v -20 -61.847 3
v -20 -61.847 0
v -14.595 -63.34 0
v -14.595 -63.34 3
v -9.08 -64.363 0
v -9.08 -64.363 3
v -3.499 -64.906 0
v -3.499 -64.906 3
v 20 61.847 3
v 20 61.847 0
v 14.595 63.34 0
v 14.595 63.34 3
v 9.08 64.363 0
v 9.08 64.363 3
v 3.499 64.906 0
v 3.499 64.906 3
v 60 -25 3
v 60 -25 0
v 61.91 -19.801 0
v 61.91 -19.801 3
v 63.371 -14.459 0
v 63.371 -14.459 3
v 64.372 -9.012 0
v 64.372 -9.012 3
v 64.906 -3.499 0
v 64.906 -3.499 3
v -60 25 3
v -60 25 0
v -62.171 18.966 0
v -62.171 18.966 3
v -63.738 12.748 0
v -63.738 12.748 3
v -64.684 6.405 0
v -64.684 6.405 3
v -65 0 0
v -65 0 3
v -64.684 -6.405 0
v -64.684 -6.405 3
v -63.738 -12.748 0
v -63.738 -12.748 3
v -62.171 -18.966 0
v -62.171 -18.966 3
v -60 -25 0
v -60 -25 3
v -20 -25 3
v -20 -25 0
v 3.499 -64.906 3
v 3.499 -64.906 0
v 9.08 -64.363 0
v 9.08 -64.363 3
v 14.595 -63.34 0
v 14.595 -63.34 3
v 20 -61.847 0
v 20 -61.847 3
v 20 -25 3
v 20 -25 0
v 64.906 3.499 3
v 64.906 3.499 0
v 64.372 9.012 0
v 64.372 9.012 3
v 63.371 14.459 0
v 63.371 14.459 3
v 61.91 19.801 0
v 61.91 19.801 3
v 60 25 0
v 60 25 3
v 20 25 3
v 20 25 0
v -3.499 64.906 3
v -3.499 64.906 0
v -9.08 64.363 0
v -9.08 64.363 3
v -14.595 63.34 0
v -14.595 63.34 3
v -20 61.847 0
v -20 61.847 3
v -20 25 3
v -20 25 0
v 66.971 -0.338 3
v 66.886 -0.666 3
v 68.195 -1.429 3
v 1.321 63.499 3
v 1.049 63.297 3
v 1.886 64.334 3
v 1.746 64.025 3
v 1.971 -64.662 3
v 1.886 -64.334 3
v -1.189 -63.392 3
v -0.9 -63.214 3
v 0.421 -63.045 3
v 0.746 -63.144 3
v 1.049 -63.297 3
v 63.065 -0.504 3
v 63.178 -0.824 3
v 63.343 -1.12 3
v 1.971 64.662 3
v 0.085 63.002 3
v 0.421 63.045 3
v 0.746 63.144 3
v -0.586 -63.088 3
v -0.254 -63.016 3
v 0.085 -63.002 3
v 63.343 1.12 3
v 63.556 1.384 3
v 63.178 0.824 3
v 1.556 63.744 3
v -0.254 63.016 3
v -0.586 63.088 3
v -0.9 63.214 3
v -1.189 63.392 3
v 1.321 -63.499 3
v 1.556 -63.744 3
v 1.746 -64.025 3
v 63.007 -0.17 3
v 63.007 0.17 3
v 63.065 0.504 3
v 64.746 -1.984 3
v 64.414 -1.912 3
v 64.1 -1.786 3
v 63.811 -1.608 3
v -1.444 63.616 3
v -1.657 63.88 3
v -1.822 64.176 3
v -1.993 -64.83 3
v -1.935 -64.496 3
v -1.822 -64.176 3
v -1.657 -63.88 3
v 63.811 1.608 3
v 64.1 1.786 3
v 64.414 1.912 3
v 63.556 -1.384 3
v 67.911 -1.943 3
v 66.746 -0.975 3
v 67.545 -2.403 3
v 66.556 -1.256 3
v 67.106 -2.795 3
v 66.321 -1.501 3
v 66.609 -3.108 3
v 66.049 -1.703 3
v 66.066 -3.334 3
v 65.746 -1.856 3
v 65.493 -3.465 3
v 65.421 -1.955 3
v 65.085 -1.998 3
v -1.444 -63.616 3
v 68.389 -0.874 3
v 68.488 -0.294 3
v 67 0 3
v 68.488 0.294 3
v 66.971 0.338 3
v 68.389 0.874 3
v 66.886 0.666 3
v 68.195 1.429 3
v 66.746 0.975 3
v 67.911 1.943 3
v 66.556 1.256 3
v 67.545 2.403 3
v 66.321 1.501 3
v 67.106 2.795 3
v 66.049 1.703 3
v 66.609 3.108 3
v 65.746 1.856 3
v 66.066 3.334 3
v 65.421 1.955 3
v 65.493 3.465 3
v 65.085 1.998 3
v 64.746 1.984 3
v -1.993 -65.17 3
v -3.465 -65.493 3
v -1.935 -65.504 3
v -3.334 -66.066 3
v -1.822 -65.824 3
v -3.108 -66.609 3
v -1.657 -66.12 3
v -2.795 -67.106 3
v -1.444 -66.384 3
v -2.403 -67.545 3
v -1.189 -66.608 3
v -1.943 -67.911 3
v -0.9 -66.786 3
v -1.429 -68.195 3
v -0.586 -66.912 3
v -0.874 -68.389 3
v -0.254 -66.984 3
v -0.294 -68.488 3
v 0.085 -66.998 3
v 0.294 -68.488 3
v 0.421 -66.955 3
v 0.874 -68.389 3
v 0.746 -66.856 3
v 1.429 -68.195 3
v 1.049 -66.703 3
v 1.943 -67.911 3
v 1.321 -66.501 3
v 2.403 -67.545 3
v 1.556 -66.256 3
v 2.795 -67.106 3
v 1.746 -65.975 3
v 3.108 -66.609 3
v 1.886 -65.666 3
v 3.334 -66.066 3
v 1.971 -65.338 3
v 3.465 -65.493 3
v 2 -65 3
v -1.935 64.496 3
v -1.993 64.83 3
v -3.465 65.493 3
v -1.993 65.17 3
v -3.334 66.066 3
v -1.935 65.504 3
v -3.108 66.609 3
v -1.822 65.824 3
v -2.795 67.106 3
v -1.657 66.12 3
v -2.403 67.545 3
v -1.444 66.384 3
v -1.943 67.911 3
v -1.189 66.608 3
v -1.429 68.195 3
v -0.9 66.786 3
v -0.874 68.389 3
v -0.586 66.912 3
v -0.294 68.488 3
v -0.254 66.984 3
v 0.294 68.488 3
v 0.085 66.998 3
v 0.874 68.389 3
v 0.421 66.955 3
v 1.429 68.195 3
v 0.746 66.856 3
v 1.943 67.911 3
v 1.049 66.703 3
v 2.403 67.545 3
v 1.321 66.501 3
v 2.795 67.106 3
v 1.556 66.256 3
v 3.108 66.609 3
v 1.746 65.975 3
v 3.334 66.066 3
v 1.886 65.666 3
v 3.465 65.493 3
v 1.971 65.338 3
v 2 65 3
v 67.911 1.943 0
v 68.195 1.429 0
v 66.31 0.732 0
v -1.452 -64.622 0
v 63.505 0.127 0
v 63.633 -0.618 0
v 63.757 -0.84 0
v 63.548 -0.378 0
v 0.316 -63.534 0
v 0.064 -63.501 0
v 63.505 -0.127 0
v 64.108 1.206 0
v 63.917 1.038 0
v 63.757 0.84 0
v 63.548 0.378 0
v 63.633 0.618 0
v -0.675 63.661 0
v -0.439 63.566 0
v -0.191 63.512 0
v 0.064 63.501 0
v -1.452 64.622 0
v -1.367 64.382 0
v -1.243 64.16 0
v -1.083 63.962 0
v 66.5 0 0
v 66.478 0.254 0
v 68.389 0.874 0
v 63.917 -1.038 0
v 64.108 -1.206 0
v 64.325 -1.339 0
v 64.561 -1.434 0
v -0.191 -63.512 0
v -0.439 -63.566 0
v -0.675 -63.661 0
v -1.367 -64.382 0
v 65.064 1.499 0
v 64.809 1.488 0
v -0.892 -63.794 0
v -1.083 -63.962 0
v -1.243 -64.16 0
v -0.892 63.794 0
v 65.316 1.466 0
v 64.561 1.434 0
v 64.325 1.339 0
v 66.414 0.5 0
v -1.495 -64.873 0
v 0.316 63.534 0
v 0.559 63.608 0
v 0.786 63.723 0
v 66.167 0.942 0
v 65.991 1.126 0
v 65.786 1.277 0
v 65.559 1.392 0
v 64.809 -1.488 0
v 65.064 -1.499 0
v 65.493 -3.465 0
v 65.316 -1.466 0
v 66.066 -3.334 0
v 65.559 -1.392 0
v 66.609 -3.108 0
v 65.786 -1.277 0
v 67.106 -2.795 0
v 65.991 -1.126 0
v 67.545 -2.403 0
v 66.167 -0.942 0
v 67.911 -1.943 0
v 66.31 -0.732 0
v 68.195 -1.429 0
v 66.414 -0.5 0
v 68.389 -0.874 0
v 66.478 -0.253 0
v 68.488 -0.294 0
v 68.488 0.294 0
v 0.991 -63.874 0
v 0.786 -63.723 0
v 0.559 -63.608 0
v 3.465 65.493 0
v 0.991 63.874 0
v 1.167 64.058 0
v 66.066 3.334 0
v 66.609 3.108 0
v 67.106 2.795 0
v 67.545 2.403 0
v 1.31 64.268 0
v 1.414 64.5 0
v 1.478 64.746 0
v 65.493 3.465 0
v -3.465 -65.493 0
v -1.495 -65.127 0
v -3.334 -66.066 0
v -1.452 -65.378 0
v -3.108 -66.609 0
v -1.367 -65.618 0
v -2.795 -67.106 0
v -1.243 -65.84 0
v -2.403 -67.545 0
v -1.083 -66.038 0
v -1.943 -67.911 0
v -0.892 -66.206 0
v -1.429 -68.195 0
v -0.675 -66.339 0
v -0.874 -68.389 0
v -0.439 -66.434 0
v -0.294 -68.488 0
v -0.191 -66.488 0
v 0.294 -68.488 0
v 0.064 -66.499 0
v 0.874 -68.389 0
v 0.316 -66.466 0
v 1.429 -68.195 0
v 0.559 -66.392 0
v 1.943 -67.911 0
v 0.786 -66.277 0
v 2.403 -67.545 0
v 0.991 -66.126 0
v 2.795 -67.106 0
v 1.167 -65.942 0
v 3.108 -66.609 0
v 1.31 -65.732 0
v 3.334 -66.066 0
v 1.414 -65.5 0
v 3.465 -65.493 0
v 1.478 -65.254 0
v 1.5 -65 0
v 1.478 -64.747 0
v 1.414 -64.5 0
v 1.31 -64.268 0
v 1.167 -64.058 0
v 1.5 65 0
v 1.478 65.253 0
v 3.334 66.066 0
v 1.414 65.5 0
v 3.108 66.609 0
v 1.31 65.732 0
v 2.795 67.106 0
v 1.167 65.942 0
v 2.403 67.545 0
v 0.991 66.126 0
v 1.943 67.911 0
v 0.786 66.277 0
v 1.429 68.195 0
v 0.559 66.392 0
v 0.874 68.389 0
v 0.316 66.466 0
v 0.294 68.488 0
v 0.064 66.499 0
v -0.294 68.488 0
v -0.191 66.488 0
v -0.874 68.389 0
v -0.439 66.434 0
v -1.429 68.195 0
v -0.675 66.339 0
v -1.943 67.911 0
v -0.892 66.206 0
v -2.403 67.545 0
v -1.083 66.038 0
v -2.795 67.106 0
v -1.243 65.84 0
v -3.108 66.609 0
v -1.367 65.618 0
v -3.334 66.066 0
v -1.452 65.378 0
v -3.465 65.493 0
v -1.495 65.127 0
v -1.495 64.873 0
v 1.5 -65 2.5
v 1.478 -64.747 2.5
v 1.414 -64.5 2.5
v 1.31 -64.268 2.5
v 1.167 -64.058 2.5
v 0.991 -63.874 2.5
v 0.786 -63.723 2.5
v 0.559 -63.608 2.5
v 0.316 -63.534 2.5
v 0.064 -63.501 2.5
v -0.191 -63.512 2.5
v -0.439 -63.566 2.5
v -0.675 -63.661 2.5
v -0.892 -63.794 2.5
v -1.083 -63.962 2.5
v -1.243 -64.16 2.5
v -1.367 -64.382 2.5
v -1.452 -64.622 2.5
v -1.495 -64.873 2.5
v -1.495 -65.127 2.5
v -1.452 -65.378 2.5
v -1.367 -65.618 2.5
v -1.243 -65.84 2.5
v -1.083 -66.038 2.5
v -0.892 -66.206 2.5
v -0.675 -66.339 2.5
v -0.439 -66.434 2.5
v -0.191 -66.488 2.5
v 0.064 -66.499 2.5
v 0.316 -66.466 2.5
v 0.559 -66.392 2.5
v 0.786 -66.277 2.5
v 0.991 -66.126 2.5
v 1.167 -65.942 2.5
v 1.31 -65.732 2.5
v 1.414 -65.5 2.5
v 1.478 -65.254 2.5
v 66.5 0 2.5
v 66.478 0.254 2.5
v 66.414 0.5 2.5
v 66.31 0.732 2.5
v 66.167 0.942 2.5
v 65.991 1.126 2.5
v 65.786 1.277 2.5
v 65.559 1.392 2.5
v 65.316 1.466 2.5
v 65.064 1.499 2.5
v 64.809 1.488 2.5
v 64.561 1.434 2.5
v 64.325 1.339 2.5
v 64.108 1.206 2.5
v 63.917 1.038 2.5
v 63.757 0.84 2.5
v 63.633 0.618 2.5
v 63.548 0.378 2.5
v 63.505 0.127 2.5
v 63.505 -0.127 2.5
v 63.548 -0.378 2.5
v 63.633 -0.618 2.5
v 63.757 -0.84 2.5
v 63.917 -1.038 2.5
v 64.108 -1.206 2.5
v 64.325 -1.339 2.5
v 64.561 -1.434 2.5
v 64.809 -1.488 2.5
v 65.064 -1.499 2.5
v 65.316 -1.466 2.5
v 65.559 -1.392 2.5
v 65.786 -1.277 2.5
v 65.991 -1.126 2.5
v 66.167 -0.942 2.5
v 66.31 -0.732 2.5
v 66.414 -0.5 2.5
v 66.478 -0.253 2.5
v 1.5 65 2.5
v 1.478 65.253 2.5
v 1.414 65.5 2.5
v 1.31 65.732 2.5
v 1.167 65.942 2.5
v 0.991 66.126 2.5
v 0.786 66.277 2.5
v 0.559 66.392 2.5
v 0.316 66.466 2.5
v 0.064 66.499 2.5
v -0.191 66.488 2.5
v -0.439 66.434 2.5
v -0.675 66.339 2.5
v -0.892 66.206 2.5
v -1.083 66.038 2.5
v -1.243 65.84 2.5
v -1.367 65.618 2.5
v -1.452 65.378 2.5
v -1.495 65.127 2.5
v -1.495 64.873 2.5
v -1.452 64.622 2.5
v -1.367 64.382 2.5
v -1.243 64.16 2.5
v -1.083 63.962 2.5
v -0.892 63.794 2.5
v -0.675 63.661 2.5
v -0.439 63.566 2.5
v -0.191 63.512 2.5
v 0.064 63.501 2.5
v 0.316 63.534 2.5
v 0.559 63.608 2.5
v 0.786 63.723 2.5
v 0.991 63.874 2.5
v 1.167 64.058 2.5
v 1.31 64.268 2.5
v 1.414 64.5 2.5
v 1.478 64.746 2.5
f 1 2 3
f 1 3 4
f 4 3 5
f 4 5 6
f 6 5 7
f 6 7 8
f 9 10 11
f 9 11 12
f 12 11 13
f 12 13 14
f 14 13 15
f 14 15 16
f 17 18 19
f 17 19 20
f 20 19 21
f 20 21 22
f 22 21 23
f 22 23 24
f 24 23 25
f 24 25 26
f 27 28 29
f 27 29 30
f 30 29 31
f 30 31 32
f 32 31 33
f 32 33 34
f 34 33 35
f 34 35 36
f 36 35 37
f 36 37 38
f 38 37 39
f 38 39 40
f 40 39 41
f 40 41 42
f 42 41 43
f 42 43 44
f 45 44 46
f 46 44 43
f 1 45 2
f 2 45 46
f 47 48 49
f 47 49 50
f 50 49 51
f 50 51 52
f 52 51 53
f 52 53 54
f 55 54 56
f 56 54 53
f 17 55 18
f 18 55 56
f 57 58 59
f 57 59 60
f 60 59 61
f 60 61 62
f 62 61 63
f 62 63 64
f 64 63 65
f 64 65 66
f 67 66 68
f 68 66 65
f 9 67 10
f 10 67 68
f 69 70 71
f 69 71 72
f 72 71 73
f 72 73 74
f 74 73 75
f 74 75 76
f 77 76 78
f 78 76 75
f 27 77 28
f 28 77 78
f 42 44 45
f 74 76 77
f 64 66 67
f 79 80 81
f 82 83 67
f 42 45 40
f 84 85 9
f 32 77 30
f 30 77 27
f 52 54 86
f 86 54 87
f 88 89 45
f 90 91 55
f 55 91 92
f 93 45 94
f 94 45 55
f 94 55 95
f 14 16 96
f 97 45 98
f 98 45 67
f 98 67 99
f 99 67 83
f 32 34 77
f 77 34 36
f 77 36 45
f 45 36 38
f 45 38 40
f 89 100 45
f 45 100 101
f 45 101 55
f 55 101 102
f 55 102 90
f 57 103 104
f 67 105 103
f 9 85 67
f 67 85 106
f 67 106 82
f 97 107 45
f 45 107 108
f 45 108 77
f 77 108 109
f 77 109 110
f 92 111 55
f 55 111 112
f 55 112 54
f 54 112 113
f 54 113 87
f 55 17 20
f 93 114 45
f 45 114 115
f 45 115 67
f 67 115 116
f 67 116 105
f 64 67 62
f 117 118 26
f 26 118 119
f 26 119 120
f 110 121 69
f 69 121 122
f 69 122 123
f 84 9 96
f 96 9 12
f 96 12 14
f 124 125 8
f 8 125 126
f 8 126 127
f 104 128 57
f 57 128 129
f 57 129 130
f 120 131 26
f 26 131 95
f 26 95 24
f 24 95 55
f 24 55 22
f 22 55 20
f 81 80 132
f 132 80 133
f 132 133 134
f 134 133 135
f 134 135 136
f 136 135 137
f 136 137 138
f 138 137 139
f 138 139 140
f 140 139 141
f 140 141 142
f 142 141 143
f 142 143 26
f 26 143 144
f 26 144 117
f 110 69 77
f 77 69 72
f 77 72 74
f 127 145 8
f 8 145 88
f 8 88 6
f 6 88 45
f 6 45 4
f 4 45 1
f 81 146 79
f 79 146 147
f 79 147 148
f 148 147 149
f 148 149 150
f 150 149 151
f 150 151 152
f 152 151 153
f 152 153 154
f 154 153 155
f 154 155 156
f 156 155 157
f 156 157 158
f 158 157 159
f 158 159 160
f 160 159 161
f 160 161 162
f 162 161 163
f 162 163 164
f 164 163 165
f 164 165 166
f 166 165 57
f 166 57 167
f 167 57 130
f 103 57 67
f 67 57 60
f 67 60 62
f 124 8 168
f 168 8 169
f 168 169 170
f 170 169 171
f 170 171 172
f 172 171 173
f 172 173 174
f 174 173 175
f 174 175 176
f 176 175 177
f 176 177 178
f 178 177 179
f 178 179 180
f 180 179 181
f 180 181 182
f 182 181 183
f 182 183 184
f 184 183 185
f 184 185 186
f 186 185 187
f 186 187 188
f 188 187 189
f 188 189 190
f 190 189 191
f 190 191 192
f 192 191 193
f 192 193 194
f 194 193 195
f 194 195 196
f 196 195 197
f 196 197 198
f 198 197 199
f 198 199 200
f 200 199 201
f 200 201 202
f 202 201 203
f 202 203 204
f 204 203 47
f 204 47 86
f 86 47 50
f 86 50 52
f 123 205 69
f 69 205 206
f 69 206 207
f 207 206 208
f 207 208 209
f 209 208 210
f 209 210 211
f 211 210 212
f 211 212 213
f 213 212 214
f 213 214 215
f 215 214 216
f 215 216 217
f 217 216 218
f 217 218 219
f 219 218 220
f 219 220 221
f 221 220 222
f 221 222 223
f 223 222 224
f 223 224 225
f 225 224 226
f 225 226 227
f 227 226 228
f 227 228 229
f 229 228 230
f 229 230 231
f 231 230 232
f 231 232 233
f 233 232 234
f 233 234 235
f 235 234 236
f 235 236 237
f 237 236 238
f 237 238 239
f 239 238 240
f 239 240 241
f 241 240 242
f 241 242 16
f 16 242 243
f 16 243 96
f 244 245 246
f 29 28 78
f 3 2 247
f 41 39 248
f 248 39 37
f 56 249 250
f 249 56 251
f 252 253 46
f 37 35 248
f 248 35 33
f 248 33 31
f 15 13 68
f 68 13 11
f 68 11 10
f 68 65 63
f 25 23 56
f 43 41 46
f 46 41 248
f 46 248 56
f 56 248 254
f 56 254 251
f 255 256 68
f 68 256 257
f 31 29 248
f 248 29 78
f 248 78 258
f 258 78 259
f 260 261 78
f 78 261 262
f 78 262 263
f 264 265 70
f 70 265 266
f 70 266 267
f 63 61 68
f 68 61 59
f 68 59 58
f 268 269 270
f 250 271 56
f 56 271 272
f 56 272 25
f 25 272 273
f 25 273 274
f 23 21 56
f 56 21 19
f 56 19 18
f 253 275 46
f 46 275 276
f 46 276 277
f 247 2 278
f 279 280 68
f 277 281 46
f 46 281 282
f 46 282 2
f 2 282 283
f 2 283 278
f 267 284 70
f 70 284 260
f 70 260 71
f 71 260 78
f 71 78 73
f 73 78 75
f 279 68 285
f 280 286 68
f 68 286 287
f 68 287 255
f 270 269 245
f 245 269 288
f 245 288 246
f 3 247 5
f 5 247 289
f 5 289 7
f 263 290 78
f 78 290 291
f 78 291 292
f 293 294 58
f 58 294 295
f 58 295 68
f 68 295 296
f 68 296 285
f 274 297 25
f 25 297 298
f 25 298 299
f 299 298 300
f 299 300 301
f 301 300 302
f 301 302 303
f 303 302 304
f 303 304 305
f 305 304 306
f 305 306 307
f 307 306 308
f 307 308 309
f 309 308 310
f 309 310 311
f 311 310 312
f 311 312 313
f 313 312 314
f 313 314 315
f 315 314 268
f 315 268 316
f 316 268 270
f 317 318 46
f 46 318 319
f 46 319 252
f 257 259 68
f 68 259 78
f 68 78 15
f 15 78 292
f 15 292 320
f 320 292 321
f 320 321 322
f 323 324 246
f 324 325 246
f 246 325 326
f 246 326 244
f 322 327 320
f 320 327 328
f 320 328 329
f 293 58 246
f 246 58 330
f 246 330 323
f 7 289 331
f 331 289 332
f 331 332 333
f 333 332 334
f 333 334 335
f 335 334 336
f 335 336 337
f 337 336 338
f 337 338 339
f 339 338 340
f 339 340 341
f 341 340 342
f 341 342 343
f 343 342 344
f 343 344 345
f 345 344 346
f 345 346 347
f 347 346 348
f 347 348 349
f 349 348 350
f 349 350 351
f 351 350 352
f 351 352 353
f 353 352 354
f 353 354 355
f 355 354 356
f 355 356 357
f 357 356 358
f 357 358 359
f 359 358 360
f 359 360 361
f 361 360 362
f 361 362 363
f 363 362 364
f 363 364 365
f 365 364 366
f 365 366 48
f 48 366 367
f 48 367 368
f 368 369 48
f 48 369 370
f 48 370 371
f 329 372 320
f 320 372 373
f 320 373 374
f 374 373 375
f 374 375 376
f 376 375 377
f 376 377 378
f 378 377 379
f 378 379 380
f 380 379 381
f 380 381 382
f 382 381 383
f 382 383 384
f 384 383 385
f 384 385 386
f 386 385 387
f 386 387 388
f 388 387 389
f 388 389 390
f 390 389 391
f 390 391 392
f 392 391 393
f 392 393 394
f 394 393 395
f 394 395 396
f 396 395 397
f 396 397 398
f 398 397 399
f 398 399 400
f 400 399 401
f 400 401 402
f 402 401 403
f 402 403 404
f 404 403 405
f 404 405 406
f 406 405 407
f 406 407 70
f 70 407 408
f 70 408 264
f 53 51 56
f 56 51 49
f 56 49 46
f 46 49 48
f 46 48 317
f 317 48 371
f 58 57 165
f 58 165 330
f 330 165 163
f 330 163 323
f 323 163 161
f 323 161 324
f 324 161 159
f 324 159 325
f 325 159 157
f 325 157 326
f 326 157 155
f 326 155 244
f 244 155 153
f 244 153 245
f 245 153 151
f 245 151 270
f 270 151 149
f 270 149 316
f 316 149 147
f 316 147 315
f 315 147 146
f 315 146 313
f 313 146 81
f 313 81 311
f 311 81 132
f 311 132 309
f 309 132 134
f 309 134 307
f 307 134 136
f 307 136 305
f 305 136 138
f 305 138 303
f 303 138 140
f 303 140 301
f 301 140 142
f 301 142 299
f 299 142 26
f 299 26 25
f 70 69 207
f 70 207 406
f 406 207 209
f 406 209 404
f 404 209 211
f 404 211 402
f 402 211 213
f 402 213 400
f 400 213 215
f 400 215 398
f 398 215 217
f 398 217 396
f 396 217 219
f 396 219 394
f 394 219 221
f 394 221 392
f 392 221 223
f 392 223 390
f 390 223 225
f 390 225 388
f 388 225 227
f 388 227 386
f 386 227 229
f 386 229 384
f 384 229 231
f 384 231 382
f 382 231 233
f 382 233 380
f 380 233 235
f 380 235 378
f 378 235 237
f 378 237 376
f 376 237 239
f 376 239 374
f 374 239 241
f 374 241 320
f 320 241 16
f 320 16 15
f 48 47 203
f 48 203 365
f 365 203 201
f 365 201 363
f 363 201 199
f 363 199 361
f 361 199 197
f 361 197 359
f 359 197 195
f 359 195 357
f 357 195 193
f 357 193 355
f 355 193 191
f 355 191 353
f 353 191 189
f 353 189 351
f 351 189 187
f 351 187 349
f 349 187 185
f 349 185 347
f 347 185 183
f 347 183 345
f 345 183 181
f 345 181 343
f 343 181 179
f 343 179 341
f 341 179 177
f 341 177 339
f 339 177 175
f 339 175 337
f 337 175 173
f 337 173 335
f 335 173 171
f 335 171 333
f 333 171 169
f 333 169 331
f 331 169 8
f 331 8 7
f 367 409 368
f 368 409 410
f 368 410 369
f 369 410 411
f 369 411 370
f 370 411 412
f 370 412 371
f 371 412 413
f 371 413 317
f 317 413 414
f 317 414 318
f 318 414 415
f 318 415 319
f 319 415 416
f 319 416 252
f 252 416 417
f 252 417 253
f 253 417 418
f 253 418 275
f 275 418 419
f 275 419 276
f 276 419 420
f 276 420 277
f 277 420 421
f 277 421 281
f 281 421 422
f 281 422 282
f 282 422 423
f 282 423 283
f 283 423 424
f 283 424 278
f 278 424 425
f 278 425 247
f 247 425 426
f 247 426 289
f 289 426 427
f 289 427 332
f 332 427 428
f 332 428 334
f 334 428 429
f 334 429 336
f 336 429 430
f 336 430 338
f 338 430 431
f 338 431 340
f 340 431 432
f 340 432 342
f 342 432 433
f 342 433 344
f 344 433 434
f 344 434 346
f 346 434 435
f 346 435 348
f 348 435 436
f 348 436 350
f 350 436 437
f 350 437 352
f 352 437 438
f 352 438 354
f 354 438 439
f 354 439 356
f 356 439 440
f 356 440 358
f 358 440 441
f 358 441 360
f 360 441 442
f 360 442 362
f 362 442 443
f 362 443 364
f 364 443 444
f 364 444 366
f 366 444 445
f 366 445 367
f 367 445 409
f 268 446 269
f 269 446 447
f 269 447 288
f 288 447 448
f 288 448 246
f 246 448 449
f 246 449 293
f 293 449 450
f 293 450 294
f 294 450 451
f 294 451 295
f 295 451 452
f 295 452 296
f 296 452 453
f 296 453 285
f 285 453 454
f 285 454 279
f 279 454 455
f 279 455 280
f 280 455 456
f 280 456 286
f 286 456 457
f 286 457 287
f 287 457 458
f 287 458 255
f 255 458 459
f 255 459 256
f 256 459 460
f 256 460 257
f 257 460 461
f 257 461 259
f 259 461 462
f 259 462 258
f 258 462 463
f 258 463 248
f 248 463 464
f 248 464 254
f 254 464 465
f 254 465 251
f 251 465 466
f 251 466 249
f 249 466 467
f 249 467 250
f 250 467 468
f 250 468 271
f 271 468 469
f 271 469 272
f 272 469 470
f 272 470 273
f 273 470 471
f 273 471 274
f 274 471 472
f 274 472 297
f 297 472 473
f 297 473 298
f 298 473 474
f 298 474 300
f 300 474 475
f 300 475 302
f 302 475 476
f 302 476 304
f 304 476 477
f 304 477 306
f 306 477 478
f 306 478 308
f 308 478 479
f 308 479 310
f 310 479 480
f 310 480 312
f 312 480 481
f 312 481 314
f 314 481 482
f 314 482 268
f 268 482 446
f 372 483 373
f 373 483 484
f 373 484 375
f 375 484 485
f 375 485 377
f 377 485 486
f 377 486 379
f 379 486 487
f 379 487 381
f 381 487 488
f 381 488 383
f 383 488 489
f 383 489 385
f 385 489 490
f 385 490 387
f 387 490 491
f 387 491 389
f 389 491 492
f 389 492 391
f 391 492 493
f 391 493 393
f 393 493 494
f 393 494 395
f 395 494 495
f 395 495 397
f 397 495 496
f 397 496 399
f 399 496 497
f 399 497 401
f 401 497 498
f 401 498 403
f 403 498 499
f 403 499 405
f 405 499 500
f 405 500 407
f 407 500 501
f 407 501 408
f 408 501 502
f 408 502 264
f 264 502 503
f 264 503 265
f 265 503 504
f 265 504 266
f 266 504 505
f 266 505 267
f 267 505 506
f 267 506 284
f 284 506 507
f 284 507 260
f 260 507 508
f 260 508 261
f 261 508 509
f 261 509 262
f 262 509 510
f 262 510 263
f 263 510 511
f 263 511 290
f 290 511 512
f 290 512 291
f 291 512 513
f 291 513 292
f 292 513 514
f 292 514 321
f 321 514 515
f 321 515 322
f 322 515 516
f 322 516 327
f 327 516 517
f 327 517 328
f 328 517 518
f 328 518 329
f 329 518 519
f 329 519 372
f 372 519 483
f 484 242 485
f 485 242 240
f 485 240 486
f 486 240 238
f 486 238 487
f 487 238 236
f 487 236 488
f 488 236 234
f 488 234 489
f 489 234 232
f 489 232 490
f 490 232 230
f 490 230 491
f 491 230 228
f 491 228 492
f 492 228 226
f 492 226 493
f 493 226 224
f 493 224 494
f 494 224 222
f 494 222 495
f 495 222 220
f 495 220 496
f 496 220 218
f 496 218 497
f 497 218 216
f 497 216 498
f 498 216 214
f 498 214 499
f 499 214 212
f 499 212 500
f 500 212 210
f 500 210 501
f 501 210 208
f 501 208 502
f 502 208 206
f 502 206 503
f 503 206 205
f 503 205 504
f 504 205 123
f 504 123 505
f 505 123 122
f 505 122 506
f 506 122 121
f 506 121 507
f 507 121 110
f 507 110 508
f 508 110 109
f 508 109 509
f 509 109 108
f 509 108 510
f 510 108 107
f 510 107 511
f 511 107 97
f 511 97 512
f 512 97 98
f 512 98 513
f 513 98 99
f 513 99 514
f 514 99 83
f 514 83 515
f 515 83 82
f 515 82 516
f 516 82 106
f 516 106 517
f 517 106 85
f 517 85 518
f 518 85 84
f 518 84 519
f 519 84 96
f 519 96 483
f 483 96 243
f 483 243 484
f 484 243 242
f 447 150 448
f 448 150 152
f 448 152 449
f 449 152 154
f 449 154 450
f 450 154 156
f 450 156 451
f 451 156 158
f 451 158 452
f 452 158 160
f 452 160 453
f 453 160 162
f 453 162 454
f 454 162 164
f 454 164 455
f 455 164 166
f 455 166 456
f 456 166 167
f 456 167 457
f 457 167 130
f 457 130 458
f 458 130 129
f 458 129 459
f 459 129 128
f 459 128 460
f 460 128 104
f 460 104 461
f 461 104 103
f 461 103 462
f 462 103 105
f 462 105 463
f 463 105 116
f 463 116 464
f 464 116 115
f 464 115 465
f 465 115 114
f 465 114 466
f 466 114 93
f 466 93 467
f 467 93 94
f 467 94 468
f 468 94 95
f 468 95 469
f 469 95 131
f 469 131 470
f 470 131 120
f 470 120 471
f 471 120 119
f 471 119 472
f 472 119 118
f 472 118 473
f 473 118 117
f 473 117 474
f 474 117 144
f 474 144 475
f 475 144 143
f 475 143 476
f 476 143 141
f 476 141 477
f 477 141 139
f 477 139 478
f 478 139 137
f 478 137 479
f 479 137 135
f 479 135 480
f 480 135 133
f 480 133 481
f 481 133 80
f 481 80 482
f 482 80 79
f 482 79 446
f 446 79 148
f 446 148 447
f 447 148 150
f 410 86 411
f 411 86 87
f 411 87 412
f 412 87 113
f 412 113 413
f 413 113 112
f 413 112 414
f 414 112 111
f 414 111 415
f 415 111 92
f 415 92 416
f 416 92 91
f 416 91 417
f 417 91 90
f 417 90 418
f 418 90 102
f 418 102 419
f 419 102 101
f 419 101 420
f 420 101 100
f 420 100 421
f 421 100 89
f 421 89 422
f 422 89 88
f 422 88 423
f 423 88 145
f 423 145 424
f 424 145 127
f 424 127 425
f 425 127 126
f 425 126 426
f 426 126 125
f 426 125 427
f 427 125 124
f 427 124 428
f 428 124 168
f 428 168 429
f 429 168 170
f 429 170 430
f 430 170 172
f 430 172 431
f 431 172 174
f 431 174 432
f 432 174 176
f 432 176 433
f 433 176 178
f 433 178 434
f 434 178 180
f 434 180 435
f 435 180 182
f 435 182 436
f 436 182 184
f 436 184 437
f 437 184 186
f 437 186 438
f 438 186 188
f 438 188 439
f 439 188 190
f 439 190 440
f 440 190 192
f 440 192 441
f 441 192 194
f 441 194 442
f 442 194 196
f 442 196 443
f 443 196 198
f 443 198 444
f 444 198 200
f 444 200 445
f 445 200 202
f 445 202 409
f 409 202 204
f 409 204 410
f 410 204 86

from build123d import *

# Parameters (mm, degrees)
EXTRUDE_1_DEPTH     = 3
SKETCH_2_R          = 3.5
EXTRUDE_2_DEPTH     = 3
SKETCH_3_R          = 1.5
CUT_EXTRUDE_1_DEPTH = 3
CHAMFER_1_SIZE      = 0.5


with BuildPart() as part:
    # 草图1 → 凸台-拉伸1 (new body)
    with BuildSketch(Plane.XY):
        with BuildLine():
            Line((20, -25), (20, -61.846584384))
            ThreePointArc((20, -61.846584384), (0, -65), (-20, -61.846584384))
            Line((-20, -61.846584384), (-20, -25))
            Line((-20, -25), (-60, -25))
            ThreePointArc((-60, -25), (-65, 0), (-60, 25))
            Line((-60, 25), (-20, 25))
            Line((-20, 25), (-20, 61.846584384))
            ThreePointArc((-20, 61.846584384), (0, 65), (20, 61.846584384))
            Line((20, 61.846584384), (20, 25))
            Line((20, 25), (60, 25))
            ThreePointArc((60, 25), (65, 0), (60, -25))
            Line((60, -25), (20, -25))
        make_face()
    extrude(amount=EXTRUDE_1_DEPTH)

    # 草图2 → 凸台-拉伸2 (add)
    with BuildSketch(Plane.XY.offset(3)):
        with Locations((65, 0)):
            Circle(SKETCH_2_R)
        with Locations((0, 65)):
            Circle(SKETCH_2_R)
        with Locations((0, -65)):
            Circle(SKETCH_2_R)
    extrude(amount=-EXTRUDE_2_DEPTH)

    # 草图3 → 切除-拉伸1 (cut)
    with BuildSketch(Plane.XY.offset(3)):
        with Locations((0, 65)):
            Circle(SKETCH_3_R)
        with Locations((65, 0)):
            Circle(SKETCH_3_R)
        with Locations((0, -65)):
            Circle(SKETCH_3_R)
    extrude(amount=-CUT_EXTRUDE_1_DEPTH, mode=Mode.SUBTRACT)

    # 倒角1
    chamfer_1_edges = [part.edges().sort_by_distance(p)[0] for p in [
        (-1.5, 65, 3),
        (63.5, 0, 3),
        (-1.5, -65, 3),
    ]]
    chamfer(chamfer_1_edges, length=CHAMFER_1_SIZE)


solid = part.part
